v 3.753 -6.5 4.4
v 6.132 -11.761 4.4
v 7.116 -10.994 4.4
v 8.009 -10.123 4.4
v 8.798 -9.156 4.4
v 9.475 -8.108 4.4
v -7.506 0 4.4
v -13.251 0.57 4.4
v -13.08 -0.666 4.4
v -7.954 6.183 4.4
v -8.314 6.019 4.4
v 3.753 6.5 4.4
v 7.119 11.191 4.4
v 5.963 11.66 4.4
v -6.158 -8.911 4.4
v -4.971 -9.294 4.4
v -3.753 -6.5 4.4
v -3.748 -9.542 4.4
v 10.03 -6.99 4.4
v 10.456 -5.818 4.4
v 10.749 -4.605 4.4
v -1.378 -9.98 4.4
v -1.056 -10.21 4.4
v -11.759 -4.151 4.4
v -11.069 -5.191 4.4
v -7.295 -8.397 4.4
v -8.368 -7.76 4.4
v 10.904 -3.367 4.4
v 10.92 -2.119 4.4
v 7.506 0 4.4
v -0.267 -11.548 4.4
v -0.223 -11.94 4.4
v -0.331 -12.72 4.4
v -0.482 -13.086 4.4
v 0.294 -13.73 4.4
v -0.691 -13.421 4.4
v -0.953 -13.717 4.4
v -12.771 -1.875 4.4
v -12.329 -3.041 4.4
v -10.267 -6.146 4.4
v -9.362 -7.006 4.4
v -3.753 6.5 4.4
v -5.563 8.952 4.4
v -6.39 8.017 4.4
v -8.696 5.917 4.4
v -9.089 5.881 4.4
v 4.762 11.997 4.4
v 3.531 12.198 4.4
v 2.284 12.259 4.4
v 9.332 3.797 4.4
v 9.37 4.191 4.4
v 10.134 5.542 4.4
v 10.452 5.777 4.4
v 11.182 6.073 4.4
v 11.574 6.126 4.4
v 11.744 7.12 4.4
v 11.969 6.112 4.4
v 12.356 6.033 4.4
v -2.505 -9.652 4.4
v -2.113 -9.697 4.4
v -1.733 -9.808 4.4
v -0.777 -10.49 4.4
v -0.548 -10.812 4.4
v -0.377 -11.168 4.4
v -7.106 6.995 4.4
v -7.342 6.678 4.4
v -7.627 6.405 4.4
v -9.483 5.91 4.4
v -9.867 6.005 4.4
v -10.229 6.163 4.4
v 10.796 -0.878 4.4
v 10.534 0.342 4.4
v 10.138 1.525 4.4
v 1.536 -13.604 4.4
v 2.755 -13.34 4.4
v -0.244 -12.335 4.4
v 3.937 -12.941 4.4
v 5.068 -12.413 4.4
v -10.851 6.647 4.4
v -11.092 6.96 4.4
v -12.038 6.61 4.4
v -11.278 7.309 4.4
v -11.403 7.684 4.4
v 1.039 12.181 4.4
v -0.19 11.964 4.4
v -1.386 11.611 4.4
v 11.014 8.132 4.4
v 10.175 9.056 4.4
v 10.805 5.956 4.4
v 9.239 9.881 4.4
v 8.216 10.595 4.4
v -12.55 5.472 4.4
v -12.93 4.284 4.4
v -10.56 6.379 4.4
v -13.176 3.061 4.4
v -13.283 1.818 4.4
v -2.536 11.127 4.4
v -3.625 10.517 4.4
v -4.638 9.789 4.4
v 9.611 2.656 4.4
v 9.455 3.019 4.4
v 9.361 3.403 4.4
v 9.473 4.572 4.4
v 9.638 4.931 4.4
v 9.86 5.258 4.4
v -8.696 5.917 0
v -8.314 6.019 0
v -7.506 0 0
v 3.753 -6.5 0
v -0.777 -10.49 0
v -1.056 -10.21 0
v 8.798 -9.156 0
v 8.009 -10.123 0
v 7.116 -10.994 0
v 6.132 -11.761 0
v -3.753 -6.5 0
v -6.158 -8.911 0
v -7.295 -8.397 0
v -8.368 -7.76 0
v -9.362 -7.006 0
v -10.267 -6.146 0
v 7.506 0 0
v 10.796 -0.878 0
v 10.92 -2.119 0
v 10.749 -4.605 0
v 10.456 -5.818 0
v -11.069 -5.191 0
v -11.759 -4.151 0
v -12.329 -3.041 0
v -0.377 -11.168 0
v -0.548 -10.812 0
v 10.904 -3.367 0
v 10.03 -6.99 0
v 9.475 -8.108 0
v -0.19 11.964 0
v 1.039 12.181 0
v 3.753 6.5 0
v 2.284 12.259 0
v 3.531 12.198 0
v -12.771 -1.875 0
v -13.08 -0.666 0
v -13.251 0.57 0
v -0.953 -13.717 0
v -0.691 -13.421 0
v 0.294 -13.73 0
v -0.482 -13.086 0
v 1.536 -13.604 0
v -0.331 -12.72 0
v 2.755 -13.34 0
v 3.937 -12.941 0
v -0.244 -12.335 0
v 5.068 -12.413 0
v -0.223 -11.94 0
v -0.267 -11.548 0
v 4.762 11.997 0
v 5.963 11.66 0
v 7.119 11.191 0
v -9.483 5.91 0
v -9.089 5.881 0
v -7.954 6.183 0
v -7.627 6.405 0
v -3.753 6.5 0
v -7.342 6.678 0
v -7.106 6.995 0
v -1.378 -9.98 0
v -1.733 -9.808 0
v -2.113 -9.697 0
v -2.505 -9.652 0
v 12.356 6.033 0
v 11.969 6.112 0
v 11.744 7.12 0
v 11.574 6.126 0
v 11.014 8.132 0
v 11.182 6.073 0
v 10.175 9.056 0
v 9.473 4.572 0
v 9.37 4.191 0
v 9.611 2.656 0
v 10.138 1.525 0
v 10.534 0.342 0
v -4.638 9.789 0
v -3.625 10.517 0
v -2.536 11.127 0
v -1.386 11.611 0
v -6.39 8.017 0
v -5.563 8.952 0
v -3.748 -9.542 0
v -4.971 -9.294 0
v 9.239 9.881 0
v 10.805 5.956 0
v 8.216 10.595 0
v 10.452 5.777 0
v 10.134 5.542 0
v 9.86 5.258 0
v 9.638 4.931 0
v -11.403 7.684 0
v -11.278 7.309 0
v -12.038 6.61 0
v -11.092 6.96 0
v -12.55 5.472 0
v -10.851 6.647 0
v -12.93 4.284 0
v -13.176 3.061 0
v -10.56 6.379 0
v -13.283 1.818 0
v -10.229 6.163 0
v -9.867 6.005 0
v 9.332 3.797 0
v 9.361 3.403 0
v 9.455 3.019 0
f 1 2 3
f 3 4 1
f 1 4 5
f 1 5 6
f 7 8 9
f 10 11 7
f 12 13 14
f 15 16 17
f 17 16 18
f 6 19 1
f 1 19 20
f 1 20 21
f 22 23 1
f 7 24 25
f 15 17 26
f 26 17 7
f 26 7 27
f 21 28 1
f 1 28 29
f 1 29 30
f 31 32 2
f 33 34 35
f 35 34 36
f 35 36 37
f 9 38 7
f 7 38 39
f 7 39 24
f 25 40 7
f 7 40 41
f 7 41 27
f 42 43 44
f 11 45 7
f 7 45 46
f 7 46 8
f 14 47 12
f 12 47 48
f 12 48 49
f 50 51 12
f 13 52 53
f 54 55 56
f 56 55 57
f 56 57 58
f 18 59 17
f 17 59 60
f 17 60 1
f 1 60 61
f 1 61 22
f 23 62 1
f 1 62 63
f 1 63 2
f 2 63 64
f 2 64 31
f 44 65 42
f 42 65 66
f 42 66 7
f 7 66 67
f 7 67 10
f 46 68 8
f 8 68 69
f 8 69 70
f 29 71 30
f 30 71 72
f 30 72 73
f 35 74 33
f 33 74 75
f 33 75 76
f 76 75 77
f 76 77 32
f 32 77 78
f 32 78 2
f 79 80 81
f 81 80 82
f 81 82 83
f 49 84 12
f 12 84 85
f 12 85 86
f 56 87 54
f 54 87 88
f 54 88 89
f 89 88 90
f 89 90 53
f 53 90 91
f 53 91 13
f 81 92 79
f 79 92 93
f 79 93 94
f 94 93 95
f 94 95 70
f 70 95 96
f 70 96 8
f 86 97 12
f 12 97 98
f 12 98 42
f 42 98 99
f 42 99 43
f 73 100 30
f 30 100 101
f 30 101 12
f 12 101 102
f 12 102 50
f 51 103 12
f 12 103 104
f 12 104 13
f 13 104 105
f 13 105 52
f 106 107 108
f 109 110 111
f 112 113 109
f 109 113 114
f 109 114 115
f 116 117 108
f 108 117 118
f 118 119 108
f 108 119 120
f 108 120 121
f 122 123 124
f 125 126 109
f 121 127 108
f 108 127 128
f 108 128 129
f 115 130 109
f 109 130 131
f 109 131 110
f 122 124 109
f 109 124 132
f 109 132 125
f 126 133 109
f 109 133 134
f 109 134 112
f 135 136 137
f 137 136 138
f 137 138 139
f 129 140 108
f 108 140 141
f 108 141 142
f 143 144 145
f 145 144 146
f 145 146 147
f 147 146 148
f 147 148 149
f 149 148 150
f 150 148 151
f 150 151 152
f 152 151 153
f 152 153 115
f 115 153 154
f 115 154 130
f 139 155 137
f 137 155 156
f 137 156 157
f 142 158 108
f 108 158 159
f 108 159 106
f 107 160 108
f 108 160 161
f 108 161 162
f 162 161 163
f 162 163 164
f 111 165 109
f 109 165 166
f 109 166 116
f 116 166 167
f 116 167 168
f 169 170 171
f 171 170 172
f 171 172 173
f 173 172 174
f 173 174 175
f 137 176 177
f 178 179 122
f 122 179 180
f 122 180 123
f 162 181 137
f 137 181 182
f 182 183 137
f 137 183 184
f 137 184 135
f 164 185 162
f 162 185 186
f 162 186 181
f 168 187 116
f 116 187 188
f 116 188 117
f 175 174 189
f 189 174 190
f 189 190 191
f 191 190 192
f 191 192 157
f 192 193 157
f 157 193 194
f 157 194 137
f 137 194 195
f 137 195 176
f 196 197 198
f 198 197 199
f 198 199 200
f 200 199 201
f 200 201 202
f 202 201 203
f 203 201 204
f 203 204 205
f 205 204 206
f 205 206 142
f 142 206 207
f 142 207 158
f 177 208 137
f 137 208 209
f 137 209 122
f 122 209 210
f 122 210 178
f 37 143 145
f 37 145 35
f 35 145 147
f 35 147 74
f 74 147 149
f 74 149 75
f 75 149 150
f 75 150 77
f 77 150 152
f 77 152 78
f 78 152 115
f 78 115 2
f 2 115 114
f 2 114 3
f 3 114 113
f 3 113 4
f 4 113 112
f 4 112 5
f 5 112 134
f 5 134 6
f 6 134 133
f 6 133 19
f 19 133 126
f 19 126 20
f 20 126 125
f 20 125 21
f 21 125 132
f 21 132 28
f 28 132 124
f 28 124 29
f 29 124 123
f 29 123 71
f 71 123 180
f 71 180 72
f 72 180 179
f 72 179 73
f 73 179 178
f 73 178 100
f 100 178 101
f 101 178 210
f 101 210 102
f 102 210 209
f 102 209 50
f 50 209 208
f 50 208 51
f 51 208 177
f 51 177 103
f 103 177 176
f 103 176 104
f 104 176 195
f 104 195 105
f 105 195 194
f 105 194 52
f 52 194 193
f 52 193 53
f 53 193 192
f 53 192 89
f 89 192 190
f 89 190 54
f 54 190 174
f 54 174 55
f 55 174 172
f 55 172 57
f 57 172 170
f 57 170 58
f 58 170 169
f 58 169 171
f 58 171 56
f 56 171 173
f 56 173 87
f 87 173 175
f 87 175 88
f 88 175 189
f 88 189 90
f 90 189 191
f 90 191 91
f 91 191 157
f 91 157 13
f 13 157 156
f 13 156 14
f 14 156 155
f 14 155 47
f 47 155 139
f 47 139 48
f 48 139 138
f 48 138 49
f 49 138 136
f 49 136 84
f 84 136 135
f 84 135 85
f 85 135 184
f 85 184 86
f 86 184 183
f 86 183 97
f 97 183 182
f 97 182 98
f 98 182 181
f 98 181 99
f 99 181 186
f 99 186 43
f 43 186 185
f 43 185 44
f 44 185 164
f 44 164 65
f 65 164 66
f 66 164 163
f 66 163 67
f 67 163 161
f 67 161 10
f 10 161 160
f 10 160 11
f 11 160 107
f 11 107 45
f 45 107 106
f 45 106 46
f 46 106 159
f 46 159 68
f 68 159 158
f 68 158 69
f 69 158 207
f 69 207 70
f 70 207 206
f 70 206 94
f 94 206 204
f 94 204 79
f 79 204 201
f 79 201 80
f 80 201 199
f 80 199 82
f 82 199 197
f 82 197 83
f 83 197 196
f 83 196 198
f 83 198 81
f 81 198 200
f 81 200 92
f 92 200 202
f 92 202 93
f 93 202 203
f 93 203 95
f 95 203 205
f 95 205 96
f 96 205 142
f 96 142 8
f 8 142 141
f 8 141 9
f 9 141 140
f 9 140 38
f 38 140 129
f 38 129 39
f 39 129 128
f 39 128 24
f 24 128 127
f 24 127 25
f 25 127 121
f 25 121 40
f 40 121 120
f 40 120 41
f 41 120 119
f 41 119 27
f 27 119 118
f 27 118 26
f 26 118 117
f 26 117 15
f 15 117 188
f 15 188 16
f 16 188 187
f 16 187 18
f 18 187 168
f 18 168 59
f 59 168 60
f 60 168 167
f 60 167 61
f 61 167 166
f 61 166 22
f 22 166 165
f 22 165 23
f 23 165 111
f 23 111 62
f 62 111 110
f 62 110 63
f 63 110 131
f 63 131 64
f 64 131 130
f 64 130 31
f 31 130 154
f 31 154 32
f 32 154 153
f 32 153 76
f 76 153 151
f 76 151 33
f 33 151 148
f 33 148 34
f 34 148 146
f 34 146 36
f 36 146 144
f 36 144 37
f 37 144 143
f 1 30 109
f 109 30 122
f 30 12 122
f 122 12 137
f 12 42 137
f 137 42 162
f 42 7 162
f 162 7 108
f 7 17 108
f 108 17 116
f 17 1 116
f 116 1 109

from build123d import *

# Parameters (mm, degrees)
BOSS_EXTRUDE1_DEPTH = 4.4


with BuildPart() as part:
    # Sketch1 → Boss-Extrude1 (new body)
    with BuildSketch(Plane.XY):
        with BuildLine():
            ThreePointArc((-7.106112246, 6.995417074), (2.908276026, 12.245932527), (12.355783111, 6.033002876))
            ThreePointArc((12.355783111, 6.033002876), (9.860301204, 5.257635244), (9.611265019, 2.65636519))
            ThreePointArc((9.611265019, 2.65636519), (9.151150649, -8.641607183), (-0.953157804, -13.716923496))
            ThreePointArc((-0.953157804, -13.716923496), (-0.376904917, -11.168088953), (-2.505152773, -9.651782264))
            ThreePointArc((-2.505152773, -9.651782264), (-12.059426674, -3.604325344), (-11.402625308, 7.68392062))
            ThreePointArc((-11.402625308, 7.68392062), (-9.483396287, 5.910453709), (-7.106112246, 6.995417074))
        make_face()
        Polygon((7.505553499, 0), (3.75277675, 6.5), (-3.75277675, 6.5), (-7.505553499, 0), (-3.75277675, -6.5), (3.75277675, -6.5), align=None, mode=Mode.SUBTRACT)
    extrude(amount=BOSS_EXTRUDE1_DEPTH)


solid = part.part
